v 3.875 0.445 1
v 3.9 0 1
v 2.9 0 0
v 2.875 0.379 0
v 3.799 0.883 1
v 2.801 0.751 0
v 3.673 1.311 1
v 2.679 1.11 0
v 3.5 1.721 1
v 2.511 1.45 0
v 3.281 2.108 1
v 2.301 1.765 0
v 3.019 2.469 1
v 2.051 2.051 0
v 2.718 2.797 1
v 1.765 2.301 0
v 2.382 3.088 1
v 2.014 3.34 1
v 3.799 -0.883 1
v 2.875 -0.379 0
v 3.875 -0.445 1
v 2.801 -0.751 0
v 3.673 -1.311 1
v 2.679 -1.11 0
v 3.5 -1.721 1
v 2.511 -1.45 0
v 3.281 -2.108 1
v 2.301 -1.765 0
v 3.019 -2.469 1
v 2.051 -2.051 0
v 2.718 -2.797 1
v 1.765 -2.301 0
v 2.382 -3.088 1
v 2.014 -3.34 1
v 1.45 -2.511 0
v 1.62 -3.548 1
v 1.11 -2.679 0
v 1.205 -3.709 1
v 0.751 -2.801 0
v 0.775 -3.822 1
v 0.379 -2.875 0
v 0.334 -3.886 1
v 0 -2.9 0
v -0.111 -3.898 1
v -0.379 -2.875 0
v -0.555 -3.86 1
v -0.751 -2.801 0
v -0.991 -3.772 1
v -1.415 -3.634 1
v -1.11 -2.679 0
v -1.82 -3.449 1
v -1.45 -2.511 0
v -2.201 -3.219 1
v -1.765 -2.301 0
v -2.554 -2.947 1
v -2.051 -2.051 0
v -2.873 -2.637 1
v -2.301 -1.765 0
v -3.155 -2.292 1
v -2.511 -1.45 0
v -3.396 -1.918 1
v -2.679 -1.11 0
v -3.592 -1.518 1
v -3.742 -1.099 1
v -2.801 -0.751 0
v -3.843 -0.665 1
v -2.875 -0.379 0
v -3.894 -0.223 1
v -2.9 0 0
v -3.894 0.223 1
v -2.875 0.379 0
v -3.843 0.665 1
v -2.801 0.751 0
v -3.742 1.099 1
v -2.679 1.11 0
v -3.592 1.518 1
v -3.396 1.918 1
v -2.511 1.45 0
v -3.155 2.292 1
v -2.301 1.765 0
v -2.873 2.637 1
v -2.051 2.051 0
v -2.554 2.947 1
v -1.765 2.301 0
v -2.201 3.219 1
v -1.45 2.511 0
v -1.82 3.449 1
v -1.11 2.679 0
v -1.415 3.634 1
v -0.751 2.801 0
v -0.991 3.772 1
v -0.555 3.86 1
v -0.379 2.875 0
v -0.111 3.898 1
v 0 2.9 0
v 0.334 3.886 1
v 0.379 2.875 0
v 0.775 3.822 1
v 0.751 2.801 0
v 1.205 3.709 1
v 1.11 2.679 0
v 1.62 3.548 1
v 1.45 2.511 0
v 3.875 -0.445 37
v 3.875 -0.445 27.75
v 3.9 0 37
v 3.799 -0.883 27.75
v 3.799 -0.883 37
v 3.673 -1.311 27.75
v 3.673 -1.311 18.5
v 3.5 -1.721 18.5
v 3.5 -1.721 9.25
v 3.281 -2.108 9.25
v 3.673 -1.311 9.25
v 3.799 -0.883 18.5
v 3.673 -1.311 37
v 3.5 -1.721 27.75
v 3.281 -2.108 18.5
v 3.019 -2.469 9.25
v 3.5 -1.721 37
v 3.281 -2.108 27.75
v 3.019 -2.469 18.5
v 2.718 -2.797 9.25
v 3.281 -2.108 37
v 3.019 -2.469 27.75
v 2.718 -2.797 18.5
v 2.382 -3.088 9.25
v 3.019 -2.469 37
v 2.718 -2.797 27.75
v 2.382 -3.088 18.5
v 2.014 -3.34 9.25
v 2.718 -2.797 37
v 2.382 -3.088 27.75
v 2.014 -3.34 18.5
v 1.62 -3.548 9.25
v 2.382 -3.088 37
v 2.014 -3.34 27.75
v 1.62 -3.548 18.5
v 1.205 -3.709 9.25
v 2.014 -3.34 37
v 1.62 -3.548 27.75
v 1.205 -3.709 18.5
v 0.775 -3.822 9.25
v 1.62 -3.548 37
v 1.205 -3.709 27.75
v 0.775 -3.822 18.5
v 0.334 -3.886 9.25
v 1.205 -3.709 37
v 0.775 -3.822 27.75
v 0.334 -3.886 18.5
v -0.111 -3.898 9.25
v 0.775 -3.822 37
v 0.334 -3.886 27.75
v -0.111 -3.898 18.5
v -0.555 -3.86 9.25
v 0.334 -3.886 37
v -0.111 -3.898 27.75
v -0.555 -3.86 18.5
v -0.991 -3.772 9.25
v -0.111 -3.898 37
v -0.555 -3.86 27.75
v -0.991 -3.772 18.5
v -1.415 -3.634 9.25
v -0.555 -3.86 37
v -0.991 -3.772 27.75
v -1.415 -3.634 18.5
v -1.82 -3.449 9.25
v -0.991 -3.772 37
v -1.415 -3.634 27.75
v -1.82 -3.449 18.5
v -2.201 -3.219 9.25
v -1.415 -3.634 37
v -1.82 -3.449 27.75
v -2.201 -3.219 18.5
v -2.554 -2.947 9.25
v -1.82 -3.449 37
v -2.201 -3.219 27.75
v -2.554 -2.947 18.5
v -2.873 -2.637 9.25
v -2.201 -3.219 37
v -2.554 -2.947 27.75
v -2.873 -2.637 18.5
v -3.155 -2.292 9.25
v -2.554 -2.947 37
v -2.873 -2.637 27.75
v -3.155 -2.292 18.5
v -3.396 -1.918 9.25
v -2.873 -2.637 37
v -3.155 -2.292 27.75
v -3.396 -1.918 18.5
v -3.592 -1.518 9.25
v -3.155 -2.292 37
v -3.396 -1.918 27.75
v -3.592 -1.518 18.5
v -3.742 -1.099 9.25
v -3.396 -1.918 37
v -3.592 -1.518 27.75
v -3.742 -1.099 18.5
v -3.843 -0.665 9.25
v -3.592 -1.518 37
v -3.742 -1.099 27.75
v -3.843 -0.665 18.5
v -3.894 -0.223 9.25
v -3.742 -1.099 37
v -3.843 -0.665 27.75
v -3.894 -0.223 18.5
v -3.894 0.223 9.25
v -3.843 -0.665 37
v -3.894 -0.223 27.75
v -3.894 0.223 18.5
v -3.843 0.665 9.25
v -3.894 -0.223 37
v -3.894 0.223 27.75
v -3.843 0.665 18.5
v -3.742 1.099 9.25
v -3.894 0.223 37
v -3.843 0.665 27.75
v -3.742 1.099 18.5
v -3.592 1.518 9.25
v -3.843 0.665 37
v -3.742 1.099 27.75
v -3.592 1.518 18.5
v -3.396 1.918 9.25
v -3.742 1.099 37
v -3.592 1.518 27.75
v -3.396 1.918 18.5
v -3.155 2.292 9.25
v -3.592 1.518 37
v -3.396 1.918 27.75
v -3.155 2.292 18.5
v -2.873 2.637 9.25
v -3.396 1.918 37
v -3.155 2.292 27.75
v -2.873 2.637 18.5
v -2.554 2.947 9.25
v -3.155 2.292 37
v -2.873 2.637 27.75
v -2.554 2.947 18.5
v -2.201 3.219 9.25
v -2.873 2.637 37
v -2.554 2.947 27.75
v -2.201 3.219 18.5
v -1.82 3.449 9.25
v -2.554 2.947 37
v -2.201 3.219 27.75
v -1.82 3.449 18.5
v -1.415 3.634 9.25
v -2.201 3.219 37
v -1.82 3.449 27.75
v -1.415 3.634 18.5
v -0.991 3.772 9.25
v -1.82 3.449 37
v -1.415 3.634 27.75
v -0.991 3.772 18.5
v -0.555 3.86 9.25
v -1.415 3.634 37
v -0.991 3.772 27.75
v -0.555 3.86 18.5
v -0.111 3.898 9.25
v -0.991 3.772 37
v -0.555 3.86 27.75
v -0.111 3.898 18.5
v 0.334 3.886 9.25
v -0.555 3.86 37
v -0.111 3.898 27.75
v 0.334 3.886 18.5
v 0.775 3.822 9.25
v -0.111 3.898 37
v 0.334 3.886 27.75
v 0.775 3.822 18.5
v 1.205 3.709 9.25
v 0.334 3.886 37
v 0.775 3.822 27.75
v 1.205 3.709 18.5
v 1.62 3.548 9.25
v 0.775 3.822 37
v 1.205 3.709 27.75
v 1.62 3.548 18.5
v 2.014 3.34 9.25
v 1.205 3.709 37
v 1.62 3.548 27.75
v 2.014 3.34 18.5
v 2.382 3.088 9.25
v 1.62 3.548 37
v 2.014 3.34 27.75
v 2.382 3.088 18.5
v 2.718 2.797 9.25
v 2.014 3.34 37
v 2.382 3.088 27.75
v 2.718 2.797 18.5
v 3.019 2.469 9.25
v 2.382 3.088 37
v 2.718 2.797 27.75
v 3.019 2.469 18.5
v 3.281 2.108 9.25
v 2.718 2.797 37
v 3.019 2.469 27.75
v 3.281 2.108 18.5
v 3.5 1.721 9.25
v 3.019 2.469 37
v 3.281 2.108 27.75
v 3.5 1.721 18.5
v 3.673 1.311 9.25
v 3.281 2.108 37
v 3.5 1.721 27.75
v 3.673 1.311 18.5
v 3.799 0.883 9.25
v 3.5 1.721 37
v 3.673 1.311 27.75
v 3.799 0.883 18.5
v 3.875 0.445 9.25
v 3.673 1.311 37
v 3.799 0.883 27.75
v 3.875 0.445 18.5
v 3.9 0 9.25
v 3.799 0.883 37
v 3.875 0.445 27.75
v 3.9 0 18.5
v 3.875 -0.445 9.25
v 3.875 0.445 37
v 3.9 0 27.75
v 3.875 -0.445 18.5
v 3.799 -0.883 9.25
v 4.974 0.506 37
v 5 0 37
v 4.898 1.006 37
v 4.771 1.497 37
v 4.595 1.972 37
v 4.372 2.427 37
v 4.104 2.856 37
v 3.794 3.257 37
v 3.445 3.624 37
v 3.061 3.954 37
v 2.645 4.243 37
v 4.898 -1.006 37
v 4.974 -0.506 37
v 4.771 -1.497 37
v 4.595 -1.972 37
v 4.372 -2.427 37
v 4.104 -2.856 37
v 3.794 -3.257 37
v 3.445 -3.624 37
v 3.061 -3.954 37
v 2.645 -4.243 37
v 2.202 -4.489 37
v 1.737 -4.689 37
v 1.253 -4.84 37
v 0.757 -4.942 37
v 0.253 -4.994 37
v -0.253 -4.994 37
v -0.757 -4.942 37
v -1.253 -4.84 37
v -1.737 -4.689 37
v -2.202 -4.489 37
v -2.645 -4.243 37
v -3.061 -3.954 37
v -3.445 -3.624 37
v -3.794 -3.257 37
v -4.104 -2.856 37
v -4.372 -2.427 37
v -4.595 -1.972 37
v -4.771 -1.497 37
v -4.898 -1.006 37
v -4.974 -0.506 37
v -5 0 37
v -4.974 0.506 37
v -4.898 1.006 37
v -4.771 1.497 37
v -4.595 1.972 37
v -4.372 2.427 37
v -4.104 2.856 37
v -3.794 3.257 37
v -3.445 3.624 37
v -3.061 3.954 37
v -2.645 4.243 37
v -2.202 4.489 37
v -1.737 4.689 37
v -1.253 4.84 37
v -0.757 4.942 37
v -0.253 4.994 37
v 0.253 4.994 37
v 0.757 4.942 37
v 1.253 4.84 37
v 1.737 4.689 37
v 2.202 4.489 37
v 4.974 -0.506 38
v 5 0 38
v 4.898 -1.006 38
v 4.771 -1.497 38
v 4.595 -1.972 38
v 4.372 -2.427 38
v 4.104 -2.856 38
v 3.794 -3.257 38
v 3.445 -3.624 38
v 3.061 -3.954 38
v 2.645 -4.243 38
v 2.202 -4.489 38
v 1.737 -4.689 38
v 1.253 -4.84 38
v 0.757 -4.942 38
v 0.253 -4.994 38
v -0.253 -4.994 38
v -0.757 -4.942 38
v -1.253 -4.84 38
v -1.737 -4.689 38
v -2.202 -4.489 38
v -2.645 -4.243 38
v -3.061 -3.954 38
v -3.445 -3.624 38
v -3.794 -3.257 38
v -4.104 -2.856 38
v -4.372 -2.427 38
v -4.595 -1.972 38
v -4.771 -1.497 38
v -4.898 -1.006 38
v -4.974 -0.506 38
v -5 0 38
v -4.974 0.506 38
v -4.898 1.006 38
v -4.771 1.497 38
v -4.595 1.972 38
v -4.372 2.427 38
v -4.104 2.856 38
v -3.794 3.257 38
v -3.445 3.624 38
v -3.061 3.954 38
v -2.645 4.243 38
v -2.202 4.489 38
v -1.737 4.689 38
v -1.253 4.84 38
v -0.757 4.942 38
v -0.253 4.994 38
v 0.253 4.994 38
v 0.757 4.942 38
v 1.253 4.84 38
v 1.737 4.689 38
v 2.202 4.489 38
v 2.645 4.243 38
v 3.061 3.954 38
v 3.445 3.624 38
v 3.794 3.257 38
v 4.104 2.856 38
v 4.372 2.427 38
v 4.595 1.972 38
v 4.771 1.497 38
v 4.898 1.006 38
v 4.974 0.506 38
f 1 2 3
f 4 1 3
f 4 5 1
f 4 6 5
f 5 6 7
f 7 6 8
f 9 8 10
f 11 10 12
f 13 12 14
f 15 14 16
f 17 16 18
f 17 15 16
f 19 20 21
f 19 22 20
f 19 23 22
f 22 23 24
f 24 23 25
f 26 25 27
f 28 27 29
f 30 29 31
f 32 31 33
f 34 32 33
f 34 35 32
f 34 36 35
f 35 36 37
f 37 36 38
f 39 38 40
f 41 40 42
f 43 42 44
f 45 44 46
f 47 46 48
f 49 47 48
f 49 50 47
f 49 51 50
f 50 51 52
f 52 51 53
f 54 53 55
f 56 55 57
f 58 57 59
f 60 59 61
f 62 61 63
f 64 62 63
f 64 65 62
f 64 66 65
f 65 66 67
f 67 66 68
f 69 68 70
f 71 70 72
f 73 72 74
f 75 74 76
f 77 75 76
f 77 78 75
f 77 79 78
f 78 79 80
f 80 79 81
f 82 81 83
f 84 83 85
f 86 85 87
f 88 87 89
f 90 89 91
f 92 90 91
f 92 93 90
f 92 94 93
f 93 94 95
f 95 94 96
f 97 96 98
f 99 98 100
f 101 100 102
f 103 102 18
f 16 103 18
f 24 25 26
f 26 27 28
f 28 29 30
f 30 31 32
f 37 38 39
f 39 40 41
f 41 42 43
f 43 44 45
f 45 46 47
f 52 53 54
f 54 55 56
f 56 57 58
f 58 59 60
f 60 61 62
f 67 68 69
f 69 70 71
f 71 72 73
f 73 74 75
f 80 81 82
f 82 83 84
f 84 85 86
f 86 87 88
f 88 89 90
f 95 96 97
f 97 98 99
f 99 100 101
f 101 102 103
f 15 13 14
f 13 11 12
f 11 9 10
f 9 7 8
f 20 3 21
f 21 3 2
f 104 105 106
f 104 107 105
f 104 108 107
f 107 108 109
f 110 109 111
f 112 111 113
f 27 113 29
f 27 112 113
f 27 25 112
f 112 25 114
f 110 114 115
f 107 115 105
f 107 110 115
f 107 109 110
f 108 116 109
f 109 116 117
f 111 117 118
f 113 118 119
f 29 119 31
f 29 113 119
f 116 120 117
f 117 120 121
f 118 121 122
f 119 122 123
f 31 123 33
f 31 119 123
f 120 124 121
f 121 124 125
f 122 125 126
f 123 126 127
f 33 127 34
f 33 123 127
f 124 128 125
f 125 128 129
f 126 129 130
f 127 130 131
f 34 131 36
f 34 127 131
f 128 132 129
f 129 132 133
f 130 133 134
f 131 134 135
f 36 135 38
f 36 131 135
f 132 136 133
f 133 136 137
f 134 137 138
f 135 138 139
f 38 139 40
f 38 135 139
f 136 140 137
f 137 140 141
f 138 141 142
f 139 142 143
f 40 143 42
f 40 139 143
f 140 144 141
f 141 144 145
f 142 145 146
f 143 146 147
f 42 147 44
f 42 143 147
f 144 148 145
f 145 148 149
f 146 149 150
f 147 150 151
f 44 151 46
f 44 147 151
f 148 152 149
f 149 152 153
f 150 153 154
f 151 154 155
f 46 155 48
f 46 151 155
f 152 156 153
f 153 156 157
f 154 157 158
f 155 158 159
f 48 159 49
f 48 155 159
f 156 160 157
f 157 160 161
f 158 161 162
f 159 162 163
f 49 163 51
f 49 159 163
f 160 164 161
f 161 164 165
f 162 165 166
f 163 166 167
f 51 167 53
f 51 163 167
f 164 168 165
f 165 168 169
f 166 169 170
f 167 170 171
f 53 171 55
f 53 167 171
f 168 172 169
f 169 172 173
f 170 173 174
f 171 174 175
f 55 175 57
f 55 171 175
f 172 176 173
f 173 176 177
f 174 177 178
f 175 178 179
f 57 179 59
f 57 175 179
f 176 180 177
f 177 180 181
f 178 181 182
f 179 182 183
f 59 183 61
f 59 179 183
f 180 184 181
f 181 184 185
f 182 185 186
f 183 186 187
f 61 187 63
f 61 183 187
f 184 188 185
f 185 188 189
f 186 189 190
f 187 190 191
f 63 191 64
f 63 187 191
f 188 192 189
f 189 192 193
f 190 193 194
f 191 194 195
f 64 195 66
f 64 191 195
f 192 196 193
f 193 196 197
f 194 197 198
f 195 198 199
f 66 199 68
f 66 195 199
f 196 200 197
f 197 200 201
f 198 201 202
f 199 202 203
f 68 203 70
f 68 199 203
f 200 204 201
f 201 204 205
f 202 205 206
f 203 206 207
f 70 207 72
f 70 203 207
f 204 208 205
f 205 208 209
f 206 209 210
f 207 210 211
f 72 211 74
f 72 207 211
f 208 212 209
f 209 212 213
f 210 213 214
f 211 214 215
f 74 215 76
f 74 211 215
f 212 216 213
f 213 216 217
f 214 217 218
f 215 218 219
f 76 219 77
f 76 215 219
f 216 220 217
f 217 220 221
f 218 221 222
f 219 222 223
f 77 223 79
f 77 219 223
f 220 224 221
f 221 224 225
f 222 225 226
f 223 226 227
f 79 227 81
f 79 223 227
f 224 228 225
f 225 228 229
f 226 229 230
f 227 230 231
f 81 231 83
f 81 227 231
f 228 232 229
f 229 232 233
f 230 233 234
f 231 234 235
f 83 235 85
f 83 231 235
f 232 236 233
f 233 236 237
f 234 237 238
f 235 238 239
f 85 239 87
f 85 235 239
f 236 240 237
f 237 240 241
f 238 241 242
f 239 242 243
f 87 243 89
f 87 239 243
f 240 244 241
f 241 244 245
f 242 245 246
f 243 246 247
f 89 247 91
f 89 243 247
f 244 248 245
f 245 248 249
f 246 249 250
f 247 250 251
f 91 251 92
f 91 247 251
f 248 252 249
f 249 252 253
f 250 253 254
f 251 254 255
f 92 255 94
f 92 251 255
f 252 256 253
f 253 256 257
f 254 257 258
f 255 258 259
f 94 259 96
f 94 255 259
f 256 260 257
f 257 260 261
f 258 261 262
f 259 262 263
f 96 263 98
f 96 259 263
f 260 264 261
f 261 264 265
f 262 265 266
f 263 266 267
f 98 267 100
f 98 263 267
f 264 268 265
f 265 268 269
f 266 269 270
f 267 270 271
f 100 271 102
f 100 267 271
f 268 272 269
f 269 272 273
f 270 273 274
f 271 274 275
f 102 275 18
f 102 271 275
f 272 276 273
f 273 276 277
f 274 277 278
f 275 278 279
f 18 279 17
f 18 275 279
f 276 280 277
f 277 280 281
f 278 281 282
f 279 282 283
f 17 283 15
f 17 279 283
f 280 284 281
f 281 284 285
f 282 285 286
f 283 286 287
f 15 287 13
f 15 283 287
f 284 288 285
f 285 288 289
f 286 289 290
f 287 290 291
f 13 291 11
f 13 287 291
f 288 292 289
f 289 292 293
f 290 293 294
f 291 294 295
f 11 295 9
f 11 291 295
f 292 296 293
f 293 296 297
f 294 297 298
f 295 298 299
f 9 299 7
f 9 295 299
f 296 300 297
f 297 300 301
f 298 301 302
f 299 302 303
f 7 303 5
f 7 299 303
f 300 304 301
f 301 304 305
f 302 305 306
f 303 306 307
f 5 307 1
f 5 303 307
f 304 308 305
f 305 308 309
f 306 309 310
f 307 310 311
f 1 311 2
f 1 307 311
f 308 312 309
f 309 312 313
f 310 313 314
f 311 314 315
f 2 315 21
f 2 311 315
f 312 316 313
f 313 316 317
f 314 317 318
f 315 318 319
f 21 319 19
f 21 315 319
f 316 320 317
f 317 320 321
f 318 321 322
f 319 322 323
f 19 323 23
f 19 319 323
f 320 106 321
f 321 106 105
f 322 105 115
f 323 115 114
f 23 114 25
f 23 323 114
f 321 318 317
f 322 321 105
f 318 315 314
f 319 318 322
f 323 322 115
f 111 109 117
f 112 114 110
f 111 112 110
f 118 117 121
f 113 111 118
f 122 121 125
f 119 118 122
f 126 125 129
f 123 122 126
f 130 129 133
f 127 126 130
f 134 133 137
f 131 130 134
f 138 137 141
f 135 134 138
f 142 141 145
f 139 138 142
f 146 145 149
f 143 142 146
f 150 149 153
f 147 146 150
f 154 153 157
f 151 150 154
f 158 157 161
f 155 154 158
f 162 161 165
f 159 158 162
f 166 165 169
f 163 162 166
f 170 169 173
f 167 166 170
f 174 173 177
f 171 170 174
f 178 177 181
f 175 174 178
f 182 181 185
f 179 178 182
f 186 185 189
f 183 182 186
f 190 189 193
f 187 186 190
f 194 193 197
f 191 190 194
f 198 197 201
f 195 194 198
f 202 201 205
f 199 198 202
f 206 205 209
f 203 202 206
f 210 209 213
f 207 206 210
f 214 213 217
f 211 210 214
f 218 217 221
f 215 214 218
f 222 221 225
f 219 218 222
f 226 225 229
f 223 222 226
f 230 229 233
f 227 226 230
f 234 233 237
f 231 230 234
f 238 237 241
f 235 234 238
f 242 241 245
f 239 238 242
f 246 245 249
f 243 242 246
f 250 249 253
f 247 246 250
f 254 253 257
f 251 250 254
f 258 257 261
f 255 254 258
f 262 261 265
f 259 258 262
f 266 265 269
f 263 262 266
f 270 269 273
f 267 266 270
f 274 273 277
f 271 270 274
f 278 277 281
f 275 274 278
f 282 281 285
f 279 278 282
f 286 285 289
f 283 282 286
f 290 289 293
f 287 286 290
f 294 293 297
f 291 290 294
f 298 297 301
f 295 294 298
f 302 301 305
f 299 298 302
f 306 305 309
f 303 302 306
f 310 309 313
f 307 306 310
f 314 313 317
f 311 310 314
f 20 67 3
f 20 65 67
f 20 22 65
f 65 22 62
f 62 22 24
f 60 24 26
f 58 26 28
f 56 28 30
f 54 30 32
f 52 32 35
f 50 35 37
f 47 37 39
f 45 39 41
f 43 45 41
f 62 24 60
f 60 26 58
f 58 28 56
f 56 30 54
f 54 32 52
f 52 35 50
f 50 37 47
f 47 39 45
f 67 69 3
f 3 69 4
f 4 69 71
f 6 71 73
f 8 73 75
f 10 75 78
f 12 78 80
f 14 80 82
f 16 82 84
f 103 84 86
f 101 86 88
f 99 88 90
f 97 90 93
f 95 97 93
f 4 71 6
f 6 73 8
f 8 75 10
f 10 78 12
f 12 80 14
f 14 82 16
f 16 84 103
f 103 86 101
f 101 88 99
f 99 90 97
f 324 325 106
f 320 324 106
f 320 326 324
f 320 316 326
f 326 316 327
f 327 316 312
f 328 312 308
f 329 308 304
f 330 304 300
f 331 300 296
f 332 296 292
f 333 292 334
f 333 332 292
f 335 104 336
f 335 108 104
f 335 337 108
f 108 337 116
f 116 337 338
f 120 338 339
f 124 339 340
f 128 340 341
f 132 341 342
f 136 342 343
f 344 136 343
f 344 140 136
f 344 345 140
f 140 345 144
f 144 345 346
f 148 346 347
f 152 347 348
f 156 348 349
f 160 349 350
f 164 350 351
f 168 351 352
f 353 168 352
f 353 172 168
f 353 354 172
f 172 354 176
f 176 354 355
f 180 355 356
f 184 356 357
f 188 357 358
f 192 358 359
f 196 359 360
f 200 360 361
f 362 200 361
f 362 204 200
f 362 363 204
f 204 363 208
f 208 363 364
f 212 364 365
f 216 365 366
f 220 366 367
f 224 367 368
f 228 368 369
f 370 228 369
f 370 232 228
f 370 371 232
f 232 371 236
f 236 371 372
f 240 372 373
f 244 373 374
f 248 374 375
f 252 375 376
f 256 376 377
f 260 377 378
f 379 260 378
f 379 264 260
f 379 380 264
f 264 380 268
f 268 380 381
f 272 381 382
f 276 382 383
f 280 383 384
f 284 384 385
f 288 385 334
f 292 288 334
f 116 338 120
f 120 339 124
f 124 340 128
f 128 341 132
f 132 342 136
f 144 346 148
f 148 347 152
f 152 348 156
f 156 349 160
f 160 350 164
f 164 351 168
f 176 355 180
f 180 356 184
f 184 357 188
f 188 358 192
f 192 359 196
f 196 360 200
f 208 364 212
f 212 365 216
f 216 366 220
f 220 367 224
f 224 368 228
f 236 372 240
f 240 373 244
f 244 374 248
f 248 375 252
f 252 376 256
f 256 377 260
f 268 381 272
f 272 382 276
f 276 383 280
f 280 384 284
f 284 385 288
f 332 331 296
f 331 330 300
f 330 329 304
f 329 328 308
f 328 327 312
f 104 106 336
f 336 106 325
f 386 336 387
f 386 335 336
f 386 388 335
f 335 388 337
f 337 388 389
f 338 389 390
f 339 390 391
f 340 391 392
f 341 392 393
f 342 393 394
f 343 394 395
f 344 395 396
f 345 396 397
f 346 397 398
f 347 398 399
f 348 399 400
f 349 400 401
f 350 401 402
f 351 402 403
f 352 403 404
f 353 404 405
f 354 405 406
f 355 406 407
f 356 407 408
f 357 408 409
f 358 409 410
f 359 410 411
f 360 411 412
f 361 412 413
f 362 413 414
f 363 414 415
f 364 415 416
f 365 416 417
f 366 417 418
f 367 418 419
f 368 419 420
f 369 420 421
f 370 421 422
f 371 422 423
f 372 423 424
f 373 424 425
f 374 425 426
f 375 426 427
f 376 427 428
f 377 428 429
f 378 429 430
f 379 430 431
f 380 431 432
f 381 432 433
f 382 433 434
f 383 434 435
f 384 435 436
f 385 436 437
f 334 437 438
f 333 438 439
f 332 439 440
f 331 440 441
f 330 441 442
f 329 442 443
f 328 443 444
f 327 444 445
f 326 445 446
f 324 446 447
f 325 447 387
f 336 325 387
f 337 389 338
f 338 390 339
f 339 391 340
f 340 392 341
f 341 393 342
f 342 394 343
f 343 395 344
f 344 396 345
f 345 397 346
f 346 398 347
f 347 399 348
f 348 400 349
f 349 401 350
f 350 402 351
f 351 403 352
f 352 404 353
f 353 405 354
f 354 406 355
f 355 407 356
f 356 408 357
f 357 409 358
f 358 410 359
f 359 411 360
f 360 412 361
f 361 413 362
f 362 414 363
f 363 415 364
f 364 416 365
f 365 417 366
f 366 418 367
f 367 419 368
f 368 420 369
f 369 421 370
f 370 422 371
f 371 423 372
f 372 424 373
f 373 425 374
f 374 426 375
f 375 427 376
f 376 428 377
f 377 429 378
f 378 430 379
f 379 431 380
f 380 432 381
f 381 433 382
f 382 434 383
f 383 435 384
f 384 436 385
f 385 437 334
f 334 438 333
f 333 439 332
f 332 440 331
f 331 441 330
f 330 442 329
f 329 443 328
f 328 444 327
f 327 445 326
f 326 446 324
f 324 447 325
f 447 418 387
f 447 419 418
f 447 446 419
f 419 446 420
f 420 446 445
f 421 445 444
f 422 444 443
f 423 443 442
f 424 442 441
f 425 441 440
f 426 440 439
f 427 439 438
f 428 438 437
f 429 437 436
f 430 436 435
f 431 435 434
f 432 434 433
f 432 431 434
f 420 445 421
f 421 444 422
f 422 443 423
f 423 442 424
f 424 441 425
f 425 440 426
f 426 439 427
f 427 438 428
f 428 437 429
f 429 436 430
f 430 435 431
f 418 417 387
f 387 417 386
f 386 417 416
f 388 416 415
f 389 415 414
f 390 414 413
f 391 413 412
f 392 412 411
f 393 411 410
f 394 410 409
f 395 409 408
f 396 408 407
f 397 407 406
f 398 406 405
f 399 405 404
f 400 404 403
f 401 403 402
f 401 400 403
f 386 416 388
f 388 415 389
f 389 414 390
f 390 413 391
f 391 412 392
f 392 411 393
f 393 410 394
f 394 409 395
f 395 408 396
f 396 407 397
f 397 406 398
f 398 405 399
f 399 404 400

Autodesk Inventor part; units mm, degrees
ref_plane "YZ Plane" through (0, 0, 0) normal (1, 0, 0) x (0, 1, 0)
ref_plane "XZ Plane" through (0, 0, 0) normal (0, 1, 0) x (-1, 0, 0)
ref_plane "XY Plane" through (0, 0, 0) normal (0, 0, 1) x (1, 0, 0)
sketch "Skizze1" plane through (0, 0, 0) normal (0, 0, 1) x (1, 0, 0)
  circle A0 centre (0, 0) radius 3.9
  dimension "d0" = 7.8
extrude "Extrusion1" add sketch "Skizze1" along normal blind 37
sketch "Skizze2" plane through (0, 0, 37) normal (0, 0, 1) x (1, 0, 0)
  circle A0 centre (0, 0) radius 5
  dimension "d3" = 10
extrude "Extrusion2" add sketch "Skizze2" along normal blind 1
chamfer "Fase1" distance 1 angle 45 1 edges at (-3.9, 0, 0)
properties part number "Bolzen" material "Edelstahl"
